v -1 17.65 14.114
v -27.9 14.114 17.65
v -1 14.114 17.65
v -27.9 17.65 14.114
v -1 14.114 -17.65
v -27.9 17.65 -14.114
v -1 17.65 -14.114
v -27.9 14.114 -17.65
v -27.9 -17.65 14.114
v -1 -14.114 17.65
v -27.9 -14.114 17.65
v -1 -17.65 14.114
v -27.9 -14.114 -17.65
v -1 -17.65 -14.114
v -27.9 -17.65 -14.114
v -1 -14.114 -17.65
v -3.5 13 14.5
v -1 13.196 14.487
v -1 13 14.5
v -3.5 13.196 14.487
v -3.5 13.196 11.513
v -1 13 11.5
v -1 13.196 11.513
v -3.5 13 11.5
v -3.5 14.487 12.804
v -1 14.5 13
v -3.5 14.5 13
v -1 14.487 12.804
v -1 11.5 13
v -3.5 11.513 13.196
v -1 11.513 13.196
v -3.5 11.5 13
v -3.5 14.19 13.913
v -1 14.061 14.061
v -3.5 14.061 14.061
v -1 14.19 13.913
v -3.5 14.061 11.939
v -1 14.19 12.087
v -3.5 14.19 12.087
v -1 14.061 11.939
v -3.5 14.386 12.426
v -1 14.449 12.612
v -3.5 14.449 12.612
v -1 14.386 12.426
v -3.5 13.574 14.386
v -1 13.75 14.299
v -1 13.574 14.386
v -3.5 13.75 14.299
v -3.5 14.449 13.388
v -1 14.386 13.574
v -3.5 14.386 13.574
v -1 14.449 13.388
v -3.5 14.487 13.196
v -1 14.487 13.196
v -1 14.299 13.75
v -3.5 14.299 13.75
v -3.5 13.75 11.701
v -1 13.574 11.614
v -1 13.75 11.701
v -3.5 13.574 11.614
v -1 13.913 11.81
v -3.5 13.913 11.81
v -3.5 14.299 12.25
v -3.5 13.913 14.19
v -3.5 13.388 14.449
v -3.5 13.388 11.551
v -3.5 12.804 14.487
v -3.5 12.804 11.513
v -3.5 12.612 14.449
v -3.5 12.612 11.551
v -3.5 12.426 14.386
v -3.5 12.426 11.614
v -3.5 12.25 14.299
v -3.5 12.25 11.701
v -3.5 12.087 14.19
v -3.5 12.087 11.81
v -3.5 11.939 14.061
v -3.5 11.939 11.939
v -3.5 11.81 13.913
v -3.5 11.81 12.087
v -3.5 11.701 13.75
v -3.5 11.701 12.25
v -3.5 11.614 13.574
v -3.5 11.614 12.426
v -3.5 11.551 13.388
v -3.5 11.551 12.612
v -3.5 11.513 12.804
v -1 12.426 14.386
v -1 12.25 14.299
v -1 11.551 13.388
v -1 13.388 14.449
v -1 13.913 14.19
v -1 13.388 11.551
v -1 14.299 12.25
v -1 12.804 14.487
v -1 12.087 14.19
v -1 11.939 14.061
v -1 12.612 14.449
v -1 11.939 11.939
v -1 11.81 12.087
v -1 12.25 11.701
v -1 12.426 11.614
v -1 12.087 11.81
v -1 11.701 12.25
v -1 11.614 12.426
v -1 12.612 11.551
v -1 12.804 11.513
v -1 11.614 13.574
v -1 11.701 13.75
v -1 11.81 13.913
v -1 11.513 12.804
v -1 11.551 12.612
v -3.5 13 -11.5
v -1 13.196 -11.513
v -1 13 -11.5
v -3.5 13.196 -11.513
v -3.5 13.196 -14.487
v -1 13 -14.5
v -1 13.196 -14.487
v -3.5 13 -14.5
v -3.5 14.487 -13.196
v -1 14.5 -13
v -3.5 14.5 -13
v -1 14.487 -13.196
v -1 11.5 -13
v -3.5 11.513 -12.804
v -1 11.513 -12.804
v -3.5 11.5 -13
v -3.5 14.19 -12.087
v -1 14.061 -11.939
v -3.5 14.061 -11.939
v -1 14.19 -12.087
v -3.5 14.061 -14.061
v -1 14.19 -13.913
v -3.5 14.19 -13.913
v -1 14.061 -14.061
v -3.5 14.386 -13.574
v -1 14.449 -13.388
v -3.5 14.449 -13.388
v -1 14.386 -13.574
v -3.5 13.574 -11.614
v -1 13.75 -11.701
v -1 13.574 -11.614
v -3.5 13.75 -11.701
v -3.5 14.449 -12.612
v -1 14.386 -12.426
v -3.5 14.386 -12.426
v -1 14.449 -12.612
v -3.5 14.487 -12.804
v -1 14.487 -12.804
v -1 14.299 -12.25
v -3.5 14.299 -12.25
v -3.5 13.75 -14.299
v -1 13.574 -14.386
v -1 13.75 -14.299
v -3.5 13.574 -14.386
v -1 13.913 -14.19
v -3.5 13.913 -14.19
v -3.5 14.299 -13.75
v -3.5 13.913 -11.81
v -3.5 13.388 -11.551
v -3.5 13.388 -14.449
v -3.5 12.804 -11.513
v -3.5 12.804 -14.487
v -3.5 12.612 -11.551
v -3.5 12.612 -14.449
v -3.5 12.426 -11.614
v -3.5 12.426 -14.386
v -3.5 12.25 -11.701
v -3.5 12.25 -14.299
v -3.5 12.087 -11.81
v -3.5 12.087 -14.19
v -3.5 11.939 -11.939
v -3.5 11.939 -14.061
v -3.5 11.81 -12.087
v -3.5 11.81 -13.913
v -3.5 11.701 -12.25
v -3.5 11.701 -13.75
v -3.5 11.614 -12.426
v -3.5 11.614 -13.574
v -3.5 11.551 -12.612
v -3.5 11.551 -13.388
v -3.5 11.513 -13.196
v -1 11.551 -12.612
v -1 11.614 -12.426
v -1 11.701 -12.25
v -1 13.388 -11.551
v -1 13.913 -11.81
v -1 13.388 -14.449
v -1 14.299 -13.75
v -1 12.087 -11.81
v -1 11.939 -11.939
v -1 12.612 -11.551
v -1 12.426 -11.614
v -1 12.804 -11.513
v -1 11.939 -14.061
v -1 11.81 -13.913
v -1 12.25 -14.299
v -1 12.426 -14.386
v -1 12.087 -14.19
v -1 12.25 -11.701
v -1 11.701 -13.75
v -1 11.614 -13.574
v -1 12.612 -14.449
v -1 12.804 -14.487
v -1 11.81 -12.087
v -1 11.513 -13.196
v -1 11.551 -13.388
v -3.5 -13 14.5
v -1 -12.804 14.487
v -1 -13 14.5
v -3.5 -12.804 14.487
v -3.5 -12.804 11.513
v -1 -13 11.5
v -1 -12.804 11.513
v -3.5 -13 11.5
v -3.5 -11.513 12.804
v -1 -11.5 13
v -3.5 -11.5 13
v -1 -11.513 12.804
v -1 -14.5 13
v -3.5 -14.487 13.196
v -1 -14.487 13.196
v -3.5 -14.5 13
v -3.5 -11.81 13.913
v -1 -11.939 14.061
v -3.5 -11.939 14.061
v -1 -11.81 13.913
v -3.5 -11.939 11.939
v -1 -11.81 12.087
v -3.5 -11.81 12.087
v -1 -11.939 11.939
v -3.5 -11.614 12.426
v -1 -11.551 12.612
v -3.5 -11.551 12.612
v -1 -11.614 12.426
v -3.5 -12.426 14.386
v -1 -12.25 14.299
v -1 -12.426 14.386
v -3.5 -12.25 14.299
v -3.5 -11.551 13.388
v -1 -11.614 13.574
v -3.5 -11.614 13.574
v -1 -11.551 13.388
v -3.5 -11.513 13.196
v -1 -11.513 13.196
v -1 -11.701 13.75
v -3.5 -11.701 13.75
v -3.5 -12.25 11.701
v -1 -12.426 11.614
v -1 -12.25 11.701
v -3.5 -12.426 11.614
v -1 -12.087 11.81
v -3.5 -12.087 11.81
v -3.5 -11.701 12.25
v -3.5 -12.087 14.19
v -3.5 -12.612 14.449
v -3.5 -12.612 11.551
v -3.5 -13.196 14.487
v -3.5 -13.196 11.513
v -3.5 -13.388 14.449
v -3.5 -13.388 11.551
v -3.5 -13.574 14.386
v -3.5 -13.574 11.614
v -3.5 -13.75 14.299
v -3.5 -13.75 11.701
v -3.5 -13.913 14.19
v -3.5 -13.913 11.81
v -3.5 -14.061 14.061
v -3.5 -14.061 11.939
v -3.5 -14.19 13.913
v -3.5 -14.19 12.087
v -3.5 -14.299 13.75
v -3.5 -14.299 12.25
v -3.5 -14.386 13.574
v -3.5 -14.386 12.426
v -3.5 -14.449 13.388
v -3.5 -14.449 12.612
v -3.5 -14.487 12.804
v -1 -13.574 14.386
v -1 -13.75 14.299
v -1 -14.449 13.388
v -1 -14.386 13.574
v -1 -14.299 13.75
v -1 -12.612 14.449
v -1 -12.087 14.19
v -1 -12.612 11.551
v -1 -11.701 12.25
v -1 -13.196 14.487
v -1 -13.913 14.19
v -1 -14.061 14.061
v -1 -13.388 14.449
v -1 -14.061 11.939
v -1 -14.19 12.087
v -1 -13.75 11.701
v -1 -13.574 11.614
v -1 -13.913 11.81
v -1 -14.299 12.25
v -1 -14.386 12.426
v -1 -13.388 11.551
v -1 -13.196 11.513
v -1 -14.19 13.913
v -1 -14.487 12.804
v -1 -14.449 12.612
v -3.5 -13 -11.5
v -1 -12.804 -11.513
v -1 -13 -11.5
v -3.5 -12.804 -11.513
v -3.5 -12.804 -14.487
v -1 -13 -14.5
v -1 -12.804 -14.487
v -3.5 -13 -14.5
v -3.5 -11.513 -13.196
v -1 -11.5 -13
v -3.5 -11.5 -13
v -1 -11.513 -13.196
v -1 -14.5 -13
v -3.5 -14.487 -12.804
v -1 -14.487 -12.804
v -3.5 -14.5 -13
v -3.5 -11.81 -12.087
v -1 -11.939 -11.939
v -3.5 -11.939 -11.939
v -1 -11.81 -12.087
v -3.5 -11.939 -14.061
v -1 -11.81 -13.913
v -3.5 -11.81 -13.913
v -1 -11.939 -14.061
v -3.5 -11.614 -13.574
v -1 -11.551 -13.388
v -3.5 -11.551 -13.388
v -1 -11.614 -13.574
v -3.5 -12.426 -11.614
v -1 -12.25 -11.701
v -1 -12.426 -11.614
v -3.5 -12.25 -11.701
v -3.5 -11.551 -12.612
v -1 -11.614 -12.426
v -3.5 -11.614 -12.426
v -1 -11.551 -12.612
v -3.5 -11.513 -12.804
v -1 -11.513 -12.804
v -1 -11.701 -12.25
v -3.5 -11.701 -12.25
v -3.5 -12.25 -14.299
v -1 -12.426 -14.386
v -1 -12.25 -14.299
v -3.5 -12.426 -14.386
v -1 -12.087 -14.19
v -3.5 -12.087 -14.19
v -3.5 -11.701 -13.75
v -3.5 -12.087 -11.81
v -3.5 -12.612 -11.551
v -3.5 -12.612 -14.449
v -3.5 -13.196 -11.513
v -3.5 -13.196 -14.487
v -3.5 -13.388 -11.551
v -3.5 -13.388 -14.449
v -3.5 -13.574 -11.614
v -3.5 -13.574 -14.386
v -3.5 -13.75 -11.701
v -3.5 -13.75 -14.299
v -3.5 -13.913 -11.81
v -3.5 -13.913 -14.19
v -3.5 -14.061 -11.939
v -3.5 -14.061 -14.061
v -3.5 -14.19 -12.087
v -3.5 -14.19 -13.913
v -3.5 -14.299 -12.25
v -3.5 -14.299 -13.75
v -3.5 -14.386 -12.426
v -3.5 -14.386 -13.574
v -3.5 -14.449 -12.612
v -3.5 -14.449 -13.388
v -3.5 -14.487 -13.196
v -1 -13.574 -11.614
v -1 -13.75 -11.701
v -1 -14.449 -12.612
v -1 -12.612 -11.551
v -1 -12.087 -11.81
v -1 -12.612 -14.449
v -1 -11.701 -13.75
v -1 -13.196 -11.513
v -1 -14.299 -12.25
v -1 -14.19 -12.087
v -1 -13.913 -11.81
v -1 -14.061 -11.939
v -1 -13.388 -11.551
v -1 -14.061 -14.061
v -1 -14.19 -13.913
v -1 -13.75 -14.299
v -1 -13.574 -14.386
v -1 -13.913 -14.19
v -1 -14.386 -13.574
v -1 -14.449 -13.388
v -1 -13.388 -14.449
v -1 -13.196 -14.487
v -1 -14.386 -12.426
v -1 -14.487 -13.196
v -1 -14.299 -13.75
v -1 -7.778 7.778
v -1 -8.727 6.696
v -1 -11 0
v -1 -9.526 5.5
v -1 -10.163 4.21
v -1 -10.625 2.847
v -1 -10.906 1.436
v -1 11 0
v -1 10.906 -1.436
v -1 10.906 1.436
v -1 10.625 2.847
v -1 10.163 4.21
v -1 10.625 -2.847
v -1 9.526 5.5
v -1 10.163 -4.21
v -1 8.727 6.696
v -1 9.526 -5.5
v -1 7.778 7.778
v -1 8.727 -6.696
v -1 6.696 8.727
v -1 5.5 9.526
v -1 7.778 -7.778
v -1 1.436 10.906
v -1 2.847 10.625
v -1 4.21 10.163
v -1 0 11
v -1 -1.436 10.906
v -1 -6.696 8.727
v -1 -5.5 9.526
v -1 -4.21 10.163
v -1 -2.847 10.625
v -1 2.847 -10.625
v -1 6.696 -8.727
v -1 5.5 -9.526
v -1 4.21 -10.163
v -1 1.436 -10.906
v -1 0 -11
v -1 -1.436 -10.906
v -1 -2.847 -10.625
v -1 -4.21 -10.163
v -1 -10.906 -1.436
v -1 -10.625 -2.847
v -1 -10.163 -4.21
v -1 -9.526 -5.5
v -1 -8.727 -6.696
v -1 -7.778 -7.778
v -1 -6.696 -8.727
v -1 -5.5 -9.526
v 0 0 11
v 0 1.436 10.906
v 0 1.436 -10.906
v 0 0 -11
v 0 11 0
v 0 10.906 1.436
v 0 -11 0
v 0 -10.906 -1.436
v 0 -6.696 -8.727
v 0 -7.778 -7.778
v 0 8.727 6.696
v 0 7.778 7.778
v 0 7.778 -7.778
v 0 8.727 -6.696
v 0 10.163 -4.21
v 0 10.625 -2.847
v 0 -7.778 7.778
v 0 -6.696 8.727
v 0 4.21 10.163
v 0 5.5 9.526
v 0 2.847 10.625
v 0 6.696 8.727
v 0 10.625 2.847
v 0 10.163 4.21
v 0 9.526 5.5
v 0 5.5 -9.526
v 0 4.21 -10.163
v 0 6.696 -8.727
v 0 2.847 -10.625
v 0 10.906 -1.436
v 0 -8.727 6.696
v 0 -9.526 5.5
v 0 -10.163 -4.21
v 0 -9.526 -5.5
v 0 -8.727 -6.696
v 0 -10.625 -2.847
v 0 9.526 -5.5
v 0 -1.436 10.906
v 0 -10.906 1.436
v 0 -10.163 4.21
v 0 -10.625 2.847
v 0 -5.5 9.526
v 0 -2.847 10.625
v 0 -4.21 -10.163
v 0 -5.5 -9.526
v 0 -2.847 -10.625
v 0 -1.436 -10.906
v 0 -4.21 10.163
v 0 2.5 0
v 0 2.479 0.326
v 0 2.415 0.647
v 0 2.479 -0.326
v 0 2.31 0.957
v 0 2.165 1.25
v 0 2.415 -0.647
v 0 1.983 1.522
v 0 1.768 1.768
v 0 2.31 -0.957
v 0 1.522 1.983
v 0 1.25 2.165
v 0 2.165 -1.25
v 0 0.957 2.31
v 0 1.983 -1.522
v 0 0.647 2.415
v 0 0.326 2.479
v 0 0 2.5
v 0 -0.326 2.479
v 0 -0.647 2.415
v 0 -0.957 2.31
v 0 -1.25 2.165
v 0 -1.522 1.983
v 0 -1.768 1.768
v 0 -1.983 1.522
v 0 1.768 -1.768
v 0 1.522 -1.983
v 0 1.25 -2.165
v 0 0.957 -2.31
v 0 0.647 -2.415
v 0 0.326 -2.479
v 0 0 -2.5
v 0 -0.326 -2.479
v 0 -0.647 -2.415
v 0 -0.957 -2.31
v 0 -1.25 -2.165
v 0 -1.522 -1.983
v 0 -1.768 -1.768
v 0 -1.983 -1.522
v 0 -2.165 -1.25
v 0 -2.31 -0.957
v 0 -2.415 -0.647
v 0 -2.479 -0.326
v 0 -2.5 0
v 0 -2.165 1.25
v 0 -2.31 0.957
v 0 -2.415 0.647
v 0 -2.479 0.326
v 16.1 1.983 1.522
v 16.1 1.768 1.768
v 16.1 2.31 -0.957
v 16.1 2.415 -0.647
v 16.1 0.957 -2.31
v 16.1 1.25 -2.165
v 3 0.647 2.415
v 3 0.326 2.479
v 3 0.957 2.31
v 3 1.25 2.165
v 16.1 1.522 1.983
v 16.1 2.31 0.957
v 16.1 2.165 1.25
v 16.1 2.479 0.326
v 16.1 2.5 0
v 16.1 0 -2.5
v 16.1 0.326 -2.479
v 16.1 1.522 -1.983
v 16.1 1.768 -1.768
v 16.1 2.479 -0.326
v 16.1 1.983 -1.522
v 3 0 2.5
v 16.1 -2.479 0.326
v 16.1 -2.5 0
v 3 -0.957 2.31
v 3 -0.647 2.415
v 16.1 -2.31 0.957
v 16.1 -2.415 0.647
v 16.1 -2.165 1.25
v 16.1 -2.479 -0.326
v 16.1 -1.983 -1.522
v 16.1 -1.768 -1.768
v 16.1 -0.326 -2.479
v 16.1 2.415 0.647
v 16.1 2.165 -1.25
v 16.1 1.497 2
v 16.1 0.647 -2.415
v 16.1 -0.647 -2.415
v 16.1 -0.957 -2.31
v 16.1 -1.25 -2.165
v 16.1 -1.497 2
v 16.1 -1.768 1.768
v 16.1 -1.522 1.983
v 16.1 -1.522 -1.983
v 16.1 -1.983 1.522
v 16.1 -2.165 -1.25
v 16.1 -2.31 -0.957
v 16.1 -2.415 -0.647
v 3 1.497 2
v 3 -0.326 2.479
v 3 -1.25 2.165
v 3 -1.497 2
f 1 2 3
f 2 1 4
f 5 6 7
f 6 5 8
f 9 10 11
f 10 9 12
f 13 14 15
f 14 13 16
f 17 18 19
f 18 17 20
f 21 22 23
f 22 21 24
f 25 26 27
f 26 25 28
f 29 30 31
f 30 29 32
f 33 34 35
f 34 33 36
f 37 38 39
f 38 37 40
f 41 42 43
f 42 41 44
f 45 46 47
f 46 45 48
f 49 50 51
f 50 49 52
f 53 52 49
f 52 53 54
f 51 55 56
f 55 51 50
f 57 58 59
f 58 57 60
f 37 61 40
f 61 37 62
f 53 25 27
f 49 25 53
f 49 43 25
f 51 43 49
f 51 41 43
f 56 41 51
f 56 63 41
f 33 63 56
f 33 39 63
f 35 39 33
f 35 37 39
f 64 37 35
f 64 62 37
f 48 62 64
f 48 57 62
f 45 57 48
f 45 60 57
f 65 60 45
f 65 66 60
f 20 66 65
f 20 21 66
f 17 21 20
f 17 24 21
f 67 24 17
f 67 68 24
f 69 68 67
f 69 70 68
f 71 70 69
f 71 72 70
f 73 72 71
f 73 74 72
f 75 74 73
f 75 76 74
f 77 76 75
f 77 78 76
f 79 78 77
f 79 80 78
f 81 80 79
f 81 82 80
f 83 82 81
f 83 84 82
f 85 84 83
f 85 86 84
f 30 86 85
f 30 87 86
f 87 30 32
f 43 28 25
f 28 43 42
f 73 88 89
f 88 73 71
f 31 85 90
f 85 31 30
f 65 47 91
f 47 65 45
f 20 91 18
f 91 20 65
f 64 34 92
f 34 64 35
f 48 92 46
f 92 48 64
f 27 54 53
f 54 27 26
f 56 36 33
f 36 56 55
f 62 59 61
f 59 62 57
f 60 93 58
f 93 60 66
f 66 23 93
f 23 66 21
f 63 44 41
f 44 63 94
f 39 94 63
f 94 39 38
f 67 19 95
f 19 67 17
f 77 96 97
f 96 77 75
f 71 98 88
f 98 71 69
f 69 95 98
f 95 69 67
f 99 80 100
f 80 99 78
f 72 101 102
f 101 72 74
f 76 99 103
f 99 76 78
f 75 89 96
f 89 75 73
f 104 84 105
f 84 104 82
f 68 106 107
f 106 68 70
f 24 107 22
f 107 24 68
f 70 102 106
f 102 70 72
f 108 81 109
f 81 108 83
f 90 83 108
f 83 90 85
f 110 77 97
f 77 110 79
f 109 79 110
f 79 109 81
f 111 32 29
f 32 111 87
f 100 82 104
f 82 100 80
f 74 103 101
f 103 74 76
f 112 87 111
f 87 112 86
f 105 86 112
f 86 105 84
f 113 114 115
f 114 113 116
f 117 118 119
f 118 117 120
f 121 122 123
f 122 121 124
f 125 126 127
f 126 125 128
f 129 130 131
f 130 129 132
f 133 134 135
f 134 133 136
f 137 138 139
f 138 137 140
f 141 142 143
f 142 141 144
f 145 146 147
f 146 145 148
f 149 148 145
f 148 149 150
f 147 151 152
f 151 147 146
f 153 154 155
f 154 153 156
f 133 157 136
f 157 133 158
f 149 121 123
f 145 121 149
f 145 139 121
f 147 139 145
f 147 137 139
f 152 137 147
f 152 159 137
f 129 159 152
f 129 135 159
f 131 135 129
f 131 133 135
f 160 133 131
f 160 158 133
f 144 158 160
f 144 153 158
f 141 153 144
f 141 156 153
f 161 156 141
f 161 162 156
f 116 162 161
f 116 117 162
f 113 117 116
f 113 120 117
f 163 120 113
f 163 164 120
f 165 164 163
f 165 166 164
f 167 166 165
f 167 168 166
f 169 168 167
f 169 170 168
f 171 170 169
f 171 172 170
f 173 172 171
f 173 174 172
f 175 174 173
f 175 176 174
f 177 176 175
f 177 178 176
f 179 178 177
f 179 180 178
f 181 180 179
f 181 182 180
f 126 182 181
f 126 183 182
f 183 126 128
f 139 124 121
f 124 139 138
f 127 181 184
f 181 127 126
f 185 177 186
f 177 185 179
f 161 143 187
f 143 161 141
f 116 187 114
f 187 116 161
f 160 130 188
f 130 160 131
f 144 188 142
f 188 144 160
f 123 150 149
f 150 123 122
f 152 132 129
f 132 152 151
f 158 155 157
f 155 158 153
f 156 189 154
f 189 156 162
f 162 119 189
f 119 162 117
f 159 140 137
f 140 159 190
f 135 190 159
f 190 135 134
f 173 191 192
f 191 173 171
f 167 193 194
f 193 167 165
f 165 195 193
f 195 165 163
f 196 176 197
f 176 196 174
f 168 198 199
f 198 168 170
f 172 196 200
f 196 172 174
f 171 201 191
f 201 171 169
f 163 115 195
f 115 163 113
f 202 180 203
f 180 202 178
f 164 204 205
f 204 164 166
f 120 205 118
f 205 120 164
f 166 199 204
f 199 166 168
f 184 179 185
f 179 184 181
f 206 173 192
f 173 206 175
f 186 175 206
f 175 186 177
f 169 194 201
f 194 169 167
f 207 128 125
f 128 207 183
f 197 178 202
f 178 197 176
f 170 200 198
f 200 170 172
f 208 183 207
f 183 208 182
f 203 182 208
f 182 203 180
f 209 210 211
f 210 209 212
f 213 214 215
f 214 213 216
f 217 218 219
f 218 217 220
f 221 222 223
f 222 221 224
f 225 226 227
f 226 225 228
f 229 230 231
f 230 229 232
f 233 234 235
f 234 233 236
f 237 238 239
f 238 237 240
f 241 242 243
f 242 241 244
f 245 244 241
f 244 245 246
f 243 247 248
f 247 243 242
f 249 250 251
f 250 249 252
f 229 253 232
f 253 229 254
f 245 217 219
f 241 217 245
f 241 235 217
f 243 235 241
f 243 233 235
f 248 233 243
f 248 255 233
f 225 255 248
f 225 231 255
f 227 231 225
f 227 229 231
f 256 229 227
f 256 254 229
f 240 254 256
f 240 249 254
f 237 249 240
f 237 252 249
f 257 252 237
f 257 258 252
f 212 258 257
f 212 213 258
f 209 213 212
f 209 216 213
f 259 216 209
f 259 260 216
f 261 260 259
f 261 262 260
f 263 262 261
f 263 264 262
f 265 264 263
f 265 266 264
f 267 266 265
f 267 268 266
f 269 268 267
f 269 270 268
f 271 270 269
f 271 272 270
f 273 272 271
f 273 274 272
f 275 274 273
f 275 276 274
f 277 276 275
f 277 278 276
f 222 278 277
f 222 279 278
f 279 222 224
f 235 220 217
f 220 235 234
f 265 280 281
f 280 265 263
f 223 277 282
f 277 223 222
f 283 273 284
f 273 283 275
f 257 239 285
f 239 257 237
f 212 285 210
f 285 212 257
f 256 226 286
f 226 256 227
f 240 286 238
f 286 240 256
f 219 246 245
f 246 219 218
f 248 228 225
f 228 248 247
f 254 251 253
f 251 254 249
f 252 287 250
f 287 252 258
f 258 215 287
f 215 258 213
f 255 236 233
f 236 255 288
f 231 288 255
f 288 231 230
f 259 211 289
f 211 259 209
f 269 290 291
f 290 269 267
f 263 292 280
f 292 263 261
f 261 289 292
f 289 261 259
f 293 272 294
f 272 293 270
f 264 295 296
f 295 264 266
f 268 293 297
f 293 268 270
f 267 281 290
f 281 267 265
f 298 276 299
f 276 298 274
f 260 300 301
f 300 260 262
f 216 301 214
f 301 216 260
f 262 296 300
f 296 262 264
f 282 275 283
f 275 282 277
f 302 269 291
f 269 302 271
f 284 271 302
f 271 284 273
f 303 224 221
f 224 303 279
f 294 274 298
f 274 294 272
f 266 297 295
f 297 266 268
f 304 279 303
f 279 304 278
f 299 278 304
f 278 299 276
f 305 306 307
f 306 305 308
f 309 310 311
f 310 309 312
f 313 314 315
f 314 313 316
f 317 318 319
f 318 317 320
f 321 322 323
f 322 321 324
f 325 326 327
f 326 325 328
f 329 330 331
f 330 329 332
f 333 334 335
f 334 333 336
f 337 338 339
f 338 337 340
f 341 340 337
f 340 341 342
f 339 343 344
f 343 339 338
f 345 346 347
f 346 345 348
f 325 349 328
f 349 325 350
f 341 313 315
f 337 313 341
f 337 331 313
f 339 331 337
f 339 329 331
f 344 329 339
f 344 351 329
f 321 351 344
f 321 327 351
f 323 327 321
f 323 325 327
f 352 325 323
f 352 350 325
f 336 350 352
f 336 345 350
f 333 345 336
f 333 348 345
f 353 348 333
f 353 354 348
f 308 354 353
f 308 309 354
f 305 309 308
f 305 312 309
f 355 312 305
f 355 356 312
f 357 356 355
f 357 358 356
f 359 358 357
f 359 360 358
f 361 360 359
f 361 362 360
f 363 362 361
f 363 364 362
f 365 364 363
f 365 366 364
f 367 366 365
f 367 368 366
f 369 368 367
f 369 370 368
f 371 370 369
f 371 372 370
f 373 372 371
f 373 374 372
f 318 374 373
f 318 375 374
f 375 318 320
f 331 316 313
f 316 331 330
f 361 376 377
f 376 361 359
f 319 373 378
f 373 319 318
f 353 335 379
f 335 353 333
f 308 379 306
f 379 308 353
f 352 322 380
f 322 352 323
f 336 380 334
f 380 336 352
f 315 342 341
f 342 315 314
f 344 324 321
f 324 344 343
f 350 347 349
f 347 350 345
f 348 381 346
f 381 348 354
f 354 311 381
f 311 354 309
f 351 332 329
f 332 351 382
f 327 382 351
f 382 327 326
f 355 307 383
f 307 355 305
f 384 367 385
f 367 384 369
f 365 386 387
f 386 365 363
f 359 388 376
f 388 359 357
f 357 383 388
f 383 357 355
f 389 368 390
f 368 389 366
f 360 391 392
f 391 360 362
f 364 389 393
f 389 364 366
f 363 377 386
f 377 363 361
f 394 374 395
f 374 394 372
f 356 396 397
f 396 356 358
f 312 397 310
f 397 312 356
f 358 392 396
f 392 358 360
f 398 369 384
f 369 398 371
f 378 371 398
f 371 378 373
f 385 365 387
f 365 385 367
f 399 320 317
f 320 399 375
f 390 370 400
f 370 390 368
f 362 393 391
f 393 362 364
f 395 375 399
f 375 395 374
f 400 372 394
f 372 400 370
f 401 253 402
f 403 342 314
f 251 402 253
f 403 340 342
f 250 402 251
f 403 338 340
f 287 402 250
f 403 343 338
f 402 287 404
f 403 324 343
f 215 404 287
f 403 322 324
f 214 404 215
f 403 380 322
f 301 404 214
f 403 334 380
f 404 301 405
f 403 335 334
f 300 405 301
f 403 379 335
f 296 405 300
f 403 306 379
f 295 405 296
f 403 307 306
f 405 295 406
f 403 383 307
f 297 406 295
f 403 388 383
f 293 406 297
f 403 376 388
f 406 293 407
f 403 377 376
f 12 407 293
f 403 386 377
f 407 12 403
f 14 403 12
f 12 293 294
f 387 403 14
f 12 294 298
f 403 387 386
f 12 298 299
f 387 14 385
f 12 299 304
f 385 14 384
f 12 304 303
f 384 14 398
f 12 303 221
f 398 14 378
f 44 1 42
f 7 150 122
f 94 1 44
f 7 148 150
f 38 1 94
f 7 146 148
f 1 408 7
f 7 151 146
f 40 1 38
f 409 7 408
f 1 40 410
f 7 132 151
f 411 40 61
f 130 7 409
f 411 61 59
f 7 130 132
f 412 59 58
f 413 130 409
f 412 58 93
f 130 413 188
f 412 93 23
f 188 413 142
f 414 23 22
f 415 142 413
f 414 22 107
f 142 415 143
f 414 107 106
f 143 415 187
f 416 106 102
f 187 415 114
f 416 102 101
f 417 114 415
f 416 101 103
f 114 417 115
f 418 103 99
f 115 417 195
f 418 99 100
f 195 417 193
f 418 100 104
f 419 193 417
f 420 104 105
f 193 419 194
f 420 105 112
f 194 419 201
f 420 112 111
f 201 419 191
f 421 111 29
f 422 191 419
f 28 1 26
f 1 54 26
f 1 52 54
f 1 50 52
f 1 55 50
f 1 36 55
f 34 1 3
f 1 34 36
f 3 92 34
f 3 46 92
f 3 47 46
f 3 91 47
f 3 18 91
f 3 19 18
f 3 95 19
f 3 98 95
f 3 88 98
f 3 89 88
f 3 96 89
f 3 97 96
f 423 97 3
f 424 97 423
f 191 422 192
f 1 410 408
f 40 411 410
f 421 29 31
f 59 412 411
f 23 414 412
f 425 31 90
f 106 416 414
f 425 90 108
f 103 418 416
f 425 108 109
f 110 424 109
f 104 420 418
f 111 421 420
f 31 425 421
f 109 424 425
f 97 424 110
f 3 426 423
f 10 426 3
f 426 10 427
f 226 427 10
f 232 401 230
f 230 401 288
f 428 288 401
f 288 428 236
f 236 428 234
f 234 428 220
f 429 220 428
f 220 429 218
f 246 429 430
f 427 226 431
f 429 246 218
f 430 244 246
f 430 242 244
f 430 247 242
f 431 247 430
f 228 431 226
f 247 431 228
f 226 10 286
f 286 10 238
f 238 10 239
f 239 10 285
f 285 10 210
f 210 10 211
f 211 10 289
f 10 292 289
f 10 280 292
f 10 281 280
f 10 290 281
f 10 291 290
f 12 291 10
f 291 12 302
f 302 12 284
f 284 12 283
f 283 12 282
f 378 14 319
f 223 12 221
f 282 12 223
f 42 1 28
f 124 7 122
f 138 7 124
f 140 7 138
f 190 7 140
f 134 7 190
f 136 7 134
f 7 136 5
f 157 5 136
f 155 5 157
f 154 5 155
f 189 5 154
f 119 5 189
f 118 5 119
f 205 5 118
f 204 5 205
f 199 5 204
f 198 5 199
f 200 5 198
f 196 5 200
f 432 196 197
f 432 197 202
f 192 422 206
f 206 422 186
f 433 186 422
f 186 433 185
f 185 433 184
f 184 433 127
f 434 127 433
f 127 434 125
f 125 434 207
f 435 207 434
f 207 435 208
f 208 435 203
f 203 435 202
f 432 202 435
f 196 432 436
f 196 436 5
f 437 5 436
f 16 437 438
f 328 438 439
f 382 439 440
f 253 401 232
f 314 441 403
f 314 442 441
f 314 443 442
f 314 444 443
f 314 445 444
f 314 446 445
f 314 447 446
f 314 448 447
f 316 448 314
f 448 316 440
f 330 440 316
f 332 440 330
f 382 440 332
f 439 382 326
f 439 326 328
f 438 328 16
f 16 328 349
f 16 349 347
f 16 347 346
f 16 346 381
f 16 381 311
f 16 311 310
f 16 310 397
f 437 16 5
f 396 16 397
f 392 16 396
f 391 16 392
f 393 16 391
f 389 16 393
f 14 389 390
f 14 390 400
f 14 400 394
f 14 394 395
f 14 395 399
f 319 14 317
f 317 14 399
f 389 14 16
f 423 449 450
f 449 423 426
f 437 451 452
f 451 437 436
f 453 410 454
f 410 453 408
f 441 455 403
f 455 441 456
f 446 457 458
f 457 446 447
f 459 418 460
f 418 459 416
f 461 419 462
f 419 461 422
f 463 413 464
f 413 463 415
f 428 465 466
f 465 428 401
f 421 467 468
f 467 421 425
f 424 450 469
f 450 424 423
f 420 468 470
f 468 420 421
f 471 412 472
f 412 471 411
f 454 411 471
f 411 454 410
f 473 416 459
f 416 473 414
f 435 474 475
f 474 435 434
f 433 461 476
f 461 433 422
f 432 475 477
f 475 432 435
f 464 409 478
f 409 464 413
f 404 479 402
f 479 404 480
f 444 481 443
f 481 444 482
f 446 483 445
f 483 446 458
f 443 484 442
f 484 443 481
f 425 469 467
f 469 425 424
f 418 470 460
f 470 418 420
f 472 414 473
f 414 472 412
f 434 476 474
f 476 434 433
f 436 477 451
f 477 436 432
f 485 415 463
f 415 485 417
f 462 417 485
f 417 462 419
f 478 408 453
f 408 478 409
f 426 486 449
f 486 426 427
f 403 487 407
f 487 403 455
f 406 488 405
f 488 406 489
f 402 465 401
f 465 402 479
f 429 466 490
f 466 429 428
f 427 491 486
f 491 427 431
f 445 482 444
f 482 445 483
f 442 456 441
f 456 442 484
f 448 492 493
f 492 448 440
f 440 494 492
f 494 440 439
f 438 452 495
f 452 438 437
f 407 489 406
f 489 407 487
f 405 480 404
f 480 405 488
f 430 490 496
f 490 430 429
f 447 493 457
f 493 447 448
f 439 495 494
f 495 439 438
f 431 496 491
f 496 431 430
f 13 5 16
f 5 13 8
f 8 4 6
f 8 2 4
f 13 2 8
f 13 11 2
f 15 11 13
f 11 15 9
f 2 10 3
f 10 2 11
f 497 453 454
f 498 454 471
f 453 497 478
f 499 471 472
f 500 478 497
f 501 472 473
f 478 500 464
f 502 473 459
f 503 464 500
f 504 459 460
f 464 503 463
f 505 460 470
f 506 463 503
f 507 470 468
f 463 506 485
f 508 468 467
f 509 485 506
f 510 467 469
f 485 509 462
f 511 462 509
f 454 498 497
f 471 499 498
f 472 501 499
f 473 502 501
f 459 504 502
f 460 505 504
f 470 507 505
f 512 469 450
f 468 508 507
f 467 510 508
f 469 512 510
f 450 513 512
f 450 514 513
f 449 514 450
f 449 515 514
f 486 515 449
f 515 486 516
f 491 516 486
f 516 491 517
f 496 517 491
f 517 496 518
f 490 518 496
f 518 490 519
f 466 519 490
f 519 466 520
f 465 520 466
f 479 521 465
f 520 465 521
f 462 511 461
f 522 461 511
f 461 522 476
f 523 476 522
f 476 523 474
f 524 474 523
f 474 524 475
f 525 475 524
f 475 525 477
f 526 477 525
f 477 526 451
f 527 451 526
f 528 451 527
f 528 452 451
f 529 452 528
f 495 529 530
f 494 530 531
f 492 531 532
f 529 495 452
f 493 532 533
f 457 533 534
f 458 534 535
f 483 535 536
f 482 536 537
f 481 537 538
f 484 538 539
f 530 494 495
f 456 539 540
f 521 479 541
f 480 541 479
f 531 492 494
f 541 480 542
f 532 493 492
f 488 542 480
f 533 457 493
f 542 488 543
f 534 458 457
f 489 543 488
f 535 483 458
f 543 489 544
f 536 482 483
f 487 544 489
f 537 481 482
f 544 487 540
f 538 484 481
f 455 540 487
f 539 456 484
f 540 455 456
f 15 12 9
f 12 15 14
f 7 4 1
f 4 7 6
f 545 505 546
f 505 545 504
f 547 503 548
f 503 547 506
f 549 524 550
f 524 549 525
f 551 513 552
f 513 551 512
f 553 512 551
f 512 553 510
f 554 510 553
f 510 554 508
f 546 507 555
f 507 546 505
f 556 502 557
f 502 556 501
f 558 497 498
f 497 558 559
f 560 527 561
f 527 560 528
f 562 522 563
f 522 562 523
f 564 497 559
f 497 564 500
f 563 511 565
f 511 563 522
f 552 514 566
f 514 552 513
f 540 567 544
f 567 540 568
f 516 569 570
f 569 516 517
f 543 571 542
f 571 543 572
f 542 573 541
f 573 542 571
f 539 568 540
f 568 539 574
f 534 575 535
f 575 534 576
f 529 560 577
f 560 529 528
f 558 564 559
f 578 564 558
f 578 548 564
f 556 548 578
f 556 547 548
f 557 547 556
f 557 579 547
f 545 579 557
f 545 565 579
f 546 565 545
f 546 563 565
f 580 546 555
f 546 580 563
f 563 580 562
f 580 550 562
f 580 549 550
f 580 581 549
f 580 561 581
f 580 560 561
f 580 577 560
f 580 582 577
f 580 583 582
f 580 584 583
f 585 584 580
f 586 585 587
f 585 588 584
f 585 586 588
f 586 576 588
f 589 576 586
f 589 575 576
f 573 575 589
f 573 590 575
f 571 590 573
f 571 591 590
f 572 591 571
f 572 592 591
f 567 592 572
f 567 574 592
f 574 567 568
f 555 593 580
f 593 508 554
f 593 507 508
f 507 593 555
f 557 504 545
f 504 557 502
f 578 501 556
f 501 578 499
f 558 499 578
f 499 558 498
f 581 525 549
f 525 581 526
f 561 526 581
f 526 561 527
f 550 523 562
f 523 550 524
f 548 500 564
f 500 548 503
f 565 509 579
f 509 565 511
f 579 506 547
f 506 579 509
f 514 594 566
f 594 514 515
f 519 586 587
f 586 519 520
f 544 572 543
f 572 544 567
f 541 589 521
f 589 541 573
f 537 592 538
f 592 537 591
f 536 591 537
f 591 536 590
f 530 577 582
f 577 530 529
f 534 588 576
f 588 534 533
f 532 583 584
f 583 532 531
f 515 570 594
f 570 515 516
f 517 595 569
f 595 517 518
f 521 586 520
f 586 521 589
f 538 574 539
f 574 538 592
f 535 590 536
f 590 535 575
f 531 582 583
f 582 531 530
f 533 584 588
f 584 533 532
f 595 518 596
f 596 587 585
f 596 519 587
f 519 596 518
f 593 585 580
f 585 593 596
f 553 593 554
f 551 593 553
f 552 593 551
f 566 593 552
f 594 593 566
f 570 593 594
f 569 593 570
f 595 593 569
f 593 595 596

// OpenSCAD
/**********************************************************************************************************************
 **
 ** lib/MCAD/stepper_nema14_short.scad
 **
 ** This file renders a NEMA stepper motor of the dimensions specified by the file name.
 **
 **********************************************************************************************************************/

include <MCAD/stepper.scad>

$fn = 48;
rotate([0, -90, 0])
	motor(Nema14, NemaShort, dualAxis = false);
